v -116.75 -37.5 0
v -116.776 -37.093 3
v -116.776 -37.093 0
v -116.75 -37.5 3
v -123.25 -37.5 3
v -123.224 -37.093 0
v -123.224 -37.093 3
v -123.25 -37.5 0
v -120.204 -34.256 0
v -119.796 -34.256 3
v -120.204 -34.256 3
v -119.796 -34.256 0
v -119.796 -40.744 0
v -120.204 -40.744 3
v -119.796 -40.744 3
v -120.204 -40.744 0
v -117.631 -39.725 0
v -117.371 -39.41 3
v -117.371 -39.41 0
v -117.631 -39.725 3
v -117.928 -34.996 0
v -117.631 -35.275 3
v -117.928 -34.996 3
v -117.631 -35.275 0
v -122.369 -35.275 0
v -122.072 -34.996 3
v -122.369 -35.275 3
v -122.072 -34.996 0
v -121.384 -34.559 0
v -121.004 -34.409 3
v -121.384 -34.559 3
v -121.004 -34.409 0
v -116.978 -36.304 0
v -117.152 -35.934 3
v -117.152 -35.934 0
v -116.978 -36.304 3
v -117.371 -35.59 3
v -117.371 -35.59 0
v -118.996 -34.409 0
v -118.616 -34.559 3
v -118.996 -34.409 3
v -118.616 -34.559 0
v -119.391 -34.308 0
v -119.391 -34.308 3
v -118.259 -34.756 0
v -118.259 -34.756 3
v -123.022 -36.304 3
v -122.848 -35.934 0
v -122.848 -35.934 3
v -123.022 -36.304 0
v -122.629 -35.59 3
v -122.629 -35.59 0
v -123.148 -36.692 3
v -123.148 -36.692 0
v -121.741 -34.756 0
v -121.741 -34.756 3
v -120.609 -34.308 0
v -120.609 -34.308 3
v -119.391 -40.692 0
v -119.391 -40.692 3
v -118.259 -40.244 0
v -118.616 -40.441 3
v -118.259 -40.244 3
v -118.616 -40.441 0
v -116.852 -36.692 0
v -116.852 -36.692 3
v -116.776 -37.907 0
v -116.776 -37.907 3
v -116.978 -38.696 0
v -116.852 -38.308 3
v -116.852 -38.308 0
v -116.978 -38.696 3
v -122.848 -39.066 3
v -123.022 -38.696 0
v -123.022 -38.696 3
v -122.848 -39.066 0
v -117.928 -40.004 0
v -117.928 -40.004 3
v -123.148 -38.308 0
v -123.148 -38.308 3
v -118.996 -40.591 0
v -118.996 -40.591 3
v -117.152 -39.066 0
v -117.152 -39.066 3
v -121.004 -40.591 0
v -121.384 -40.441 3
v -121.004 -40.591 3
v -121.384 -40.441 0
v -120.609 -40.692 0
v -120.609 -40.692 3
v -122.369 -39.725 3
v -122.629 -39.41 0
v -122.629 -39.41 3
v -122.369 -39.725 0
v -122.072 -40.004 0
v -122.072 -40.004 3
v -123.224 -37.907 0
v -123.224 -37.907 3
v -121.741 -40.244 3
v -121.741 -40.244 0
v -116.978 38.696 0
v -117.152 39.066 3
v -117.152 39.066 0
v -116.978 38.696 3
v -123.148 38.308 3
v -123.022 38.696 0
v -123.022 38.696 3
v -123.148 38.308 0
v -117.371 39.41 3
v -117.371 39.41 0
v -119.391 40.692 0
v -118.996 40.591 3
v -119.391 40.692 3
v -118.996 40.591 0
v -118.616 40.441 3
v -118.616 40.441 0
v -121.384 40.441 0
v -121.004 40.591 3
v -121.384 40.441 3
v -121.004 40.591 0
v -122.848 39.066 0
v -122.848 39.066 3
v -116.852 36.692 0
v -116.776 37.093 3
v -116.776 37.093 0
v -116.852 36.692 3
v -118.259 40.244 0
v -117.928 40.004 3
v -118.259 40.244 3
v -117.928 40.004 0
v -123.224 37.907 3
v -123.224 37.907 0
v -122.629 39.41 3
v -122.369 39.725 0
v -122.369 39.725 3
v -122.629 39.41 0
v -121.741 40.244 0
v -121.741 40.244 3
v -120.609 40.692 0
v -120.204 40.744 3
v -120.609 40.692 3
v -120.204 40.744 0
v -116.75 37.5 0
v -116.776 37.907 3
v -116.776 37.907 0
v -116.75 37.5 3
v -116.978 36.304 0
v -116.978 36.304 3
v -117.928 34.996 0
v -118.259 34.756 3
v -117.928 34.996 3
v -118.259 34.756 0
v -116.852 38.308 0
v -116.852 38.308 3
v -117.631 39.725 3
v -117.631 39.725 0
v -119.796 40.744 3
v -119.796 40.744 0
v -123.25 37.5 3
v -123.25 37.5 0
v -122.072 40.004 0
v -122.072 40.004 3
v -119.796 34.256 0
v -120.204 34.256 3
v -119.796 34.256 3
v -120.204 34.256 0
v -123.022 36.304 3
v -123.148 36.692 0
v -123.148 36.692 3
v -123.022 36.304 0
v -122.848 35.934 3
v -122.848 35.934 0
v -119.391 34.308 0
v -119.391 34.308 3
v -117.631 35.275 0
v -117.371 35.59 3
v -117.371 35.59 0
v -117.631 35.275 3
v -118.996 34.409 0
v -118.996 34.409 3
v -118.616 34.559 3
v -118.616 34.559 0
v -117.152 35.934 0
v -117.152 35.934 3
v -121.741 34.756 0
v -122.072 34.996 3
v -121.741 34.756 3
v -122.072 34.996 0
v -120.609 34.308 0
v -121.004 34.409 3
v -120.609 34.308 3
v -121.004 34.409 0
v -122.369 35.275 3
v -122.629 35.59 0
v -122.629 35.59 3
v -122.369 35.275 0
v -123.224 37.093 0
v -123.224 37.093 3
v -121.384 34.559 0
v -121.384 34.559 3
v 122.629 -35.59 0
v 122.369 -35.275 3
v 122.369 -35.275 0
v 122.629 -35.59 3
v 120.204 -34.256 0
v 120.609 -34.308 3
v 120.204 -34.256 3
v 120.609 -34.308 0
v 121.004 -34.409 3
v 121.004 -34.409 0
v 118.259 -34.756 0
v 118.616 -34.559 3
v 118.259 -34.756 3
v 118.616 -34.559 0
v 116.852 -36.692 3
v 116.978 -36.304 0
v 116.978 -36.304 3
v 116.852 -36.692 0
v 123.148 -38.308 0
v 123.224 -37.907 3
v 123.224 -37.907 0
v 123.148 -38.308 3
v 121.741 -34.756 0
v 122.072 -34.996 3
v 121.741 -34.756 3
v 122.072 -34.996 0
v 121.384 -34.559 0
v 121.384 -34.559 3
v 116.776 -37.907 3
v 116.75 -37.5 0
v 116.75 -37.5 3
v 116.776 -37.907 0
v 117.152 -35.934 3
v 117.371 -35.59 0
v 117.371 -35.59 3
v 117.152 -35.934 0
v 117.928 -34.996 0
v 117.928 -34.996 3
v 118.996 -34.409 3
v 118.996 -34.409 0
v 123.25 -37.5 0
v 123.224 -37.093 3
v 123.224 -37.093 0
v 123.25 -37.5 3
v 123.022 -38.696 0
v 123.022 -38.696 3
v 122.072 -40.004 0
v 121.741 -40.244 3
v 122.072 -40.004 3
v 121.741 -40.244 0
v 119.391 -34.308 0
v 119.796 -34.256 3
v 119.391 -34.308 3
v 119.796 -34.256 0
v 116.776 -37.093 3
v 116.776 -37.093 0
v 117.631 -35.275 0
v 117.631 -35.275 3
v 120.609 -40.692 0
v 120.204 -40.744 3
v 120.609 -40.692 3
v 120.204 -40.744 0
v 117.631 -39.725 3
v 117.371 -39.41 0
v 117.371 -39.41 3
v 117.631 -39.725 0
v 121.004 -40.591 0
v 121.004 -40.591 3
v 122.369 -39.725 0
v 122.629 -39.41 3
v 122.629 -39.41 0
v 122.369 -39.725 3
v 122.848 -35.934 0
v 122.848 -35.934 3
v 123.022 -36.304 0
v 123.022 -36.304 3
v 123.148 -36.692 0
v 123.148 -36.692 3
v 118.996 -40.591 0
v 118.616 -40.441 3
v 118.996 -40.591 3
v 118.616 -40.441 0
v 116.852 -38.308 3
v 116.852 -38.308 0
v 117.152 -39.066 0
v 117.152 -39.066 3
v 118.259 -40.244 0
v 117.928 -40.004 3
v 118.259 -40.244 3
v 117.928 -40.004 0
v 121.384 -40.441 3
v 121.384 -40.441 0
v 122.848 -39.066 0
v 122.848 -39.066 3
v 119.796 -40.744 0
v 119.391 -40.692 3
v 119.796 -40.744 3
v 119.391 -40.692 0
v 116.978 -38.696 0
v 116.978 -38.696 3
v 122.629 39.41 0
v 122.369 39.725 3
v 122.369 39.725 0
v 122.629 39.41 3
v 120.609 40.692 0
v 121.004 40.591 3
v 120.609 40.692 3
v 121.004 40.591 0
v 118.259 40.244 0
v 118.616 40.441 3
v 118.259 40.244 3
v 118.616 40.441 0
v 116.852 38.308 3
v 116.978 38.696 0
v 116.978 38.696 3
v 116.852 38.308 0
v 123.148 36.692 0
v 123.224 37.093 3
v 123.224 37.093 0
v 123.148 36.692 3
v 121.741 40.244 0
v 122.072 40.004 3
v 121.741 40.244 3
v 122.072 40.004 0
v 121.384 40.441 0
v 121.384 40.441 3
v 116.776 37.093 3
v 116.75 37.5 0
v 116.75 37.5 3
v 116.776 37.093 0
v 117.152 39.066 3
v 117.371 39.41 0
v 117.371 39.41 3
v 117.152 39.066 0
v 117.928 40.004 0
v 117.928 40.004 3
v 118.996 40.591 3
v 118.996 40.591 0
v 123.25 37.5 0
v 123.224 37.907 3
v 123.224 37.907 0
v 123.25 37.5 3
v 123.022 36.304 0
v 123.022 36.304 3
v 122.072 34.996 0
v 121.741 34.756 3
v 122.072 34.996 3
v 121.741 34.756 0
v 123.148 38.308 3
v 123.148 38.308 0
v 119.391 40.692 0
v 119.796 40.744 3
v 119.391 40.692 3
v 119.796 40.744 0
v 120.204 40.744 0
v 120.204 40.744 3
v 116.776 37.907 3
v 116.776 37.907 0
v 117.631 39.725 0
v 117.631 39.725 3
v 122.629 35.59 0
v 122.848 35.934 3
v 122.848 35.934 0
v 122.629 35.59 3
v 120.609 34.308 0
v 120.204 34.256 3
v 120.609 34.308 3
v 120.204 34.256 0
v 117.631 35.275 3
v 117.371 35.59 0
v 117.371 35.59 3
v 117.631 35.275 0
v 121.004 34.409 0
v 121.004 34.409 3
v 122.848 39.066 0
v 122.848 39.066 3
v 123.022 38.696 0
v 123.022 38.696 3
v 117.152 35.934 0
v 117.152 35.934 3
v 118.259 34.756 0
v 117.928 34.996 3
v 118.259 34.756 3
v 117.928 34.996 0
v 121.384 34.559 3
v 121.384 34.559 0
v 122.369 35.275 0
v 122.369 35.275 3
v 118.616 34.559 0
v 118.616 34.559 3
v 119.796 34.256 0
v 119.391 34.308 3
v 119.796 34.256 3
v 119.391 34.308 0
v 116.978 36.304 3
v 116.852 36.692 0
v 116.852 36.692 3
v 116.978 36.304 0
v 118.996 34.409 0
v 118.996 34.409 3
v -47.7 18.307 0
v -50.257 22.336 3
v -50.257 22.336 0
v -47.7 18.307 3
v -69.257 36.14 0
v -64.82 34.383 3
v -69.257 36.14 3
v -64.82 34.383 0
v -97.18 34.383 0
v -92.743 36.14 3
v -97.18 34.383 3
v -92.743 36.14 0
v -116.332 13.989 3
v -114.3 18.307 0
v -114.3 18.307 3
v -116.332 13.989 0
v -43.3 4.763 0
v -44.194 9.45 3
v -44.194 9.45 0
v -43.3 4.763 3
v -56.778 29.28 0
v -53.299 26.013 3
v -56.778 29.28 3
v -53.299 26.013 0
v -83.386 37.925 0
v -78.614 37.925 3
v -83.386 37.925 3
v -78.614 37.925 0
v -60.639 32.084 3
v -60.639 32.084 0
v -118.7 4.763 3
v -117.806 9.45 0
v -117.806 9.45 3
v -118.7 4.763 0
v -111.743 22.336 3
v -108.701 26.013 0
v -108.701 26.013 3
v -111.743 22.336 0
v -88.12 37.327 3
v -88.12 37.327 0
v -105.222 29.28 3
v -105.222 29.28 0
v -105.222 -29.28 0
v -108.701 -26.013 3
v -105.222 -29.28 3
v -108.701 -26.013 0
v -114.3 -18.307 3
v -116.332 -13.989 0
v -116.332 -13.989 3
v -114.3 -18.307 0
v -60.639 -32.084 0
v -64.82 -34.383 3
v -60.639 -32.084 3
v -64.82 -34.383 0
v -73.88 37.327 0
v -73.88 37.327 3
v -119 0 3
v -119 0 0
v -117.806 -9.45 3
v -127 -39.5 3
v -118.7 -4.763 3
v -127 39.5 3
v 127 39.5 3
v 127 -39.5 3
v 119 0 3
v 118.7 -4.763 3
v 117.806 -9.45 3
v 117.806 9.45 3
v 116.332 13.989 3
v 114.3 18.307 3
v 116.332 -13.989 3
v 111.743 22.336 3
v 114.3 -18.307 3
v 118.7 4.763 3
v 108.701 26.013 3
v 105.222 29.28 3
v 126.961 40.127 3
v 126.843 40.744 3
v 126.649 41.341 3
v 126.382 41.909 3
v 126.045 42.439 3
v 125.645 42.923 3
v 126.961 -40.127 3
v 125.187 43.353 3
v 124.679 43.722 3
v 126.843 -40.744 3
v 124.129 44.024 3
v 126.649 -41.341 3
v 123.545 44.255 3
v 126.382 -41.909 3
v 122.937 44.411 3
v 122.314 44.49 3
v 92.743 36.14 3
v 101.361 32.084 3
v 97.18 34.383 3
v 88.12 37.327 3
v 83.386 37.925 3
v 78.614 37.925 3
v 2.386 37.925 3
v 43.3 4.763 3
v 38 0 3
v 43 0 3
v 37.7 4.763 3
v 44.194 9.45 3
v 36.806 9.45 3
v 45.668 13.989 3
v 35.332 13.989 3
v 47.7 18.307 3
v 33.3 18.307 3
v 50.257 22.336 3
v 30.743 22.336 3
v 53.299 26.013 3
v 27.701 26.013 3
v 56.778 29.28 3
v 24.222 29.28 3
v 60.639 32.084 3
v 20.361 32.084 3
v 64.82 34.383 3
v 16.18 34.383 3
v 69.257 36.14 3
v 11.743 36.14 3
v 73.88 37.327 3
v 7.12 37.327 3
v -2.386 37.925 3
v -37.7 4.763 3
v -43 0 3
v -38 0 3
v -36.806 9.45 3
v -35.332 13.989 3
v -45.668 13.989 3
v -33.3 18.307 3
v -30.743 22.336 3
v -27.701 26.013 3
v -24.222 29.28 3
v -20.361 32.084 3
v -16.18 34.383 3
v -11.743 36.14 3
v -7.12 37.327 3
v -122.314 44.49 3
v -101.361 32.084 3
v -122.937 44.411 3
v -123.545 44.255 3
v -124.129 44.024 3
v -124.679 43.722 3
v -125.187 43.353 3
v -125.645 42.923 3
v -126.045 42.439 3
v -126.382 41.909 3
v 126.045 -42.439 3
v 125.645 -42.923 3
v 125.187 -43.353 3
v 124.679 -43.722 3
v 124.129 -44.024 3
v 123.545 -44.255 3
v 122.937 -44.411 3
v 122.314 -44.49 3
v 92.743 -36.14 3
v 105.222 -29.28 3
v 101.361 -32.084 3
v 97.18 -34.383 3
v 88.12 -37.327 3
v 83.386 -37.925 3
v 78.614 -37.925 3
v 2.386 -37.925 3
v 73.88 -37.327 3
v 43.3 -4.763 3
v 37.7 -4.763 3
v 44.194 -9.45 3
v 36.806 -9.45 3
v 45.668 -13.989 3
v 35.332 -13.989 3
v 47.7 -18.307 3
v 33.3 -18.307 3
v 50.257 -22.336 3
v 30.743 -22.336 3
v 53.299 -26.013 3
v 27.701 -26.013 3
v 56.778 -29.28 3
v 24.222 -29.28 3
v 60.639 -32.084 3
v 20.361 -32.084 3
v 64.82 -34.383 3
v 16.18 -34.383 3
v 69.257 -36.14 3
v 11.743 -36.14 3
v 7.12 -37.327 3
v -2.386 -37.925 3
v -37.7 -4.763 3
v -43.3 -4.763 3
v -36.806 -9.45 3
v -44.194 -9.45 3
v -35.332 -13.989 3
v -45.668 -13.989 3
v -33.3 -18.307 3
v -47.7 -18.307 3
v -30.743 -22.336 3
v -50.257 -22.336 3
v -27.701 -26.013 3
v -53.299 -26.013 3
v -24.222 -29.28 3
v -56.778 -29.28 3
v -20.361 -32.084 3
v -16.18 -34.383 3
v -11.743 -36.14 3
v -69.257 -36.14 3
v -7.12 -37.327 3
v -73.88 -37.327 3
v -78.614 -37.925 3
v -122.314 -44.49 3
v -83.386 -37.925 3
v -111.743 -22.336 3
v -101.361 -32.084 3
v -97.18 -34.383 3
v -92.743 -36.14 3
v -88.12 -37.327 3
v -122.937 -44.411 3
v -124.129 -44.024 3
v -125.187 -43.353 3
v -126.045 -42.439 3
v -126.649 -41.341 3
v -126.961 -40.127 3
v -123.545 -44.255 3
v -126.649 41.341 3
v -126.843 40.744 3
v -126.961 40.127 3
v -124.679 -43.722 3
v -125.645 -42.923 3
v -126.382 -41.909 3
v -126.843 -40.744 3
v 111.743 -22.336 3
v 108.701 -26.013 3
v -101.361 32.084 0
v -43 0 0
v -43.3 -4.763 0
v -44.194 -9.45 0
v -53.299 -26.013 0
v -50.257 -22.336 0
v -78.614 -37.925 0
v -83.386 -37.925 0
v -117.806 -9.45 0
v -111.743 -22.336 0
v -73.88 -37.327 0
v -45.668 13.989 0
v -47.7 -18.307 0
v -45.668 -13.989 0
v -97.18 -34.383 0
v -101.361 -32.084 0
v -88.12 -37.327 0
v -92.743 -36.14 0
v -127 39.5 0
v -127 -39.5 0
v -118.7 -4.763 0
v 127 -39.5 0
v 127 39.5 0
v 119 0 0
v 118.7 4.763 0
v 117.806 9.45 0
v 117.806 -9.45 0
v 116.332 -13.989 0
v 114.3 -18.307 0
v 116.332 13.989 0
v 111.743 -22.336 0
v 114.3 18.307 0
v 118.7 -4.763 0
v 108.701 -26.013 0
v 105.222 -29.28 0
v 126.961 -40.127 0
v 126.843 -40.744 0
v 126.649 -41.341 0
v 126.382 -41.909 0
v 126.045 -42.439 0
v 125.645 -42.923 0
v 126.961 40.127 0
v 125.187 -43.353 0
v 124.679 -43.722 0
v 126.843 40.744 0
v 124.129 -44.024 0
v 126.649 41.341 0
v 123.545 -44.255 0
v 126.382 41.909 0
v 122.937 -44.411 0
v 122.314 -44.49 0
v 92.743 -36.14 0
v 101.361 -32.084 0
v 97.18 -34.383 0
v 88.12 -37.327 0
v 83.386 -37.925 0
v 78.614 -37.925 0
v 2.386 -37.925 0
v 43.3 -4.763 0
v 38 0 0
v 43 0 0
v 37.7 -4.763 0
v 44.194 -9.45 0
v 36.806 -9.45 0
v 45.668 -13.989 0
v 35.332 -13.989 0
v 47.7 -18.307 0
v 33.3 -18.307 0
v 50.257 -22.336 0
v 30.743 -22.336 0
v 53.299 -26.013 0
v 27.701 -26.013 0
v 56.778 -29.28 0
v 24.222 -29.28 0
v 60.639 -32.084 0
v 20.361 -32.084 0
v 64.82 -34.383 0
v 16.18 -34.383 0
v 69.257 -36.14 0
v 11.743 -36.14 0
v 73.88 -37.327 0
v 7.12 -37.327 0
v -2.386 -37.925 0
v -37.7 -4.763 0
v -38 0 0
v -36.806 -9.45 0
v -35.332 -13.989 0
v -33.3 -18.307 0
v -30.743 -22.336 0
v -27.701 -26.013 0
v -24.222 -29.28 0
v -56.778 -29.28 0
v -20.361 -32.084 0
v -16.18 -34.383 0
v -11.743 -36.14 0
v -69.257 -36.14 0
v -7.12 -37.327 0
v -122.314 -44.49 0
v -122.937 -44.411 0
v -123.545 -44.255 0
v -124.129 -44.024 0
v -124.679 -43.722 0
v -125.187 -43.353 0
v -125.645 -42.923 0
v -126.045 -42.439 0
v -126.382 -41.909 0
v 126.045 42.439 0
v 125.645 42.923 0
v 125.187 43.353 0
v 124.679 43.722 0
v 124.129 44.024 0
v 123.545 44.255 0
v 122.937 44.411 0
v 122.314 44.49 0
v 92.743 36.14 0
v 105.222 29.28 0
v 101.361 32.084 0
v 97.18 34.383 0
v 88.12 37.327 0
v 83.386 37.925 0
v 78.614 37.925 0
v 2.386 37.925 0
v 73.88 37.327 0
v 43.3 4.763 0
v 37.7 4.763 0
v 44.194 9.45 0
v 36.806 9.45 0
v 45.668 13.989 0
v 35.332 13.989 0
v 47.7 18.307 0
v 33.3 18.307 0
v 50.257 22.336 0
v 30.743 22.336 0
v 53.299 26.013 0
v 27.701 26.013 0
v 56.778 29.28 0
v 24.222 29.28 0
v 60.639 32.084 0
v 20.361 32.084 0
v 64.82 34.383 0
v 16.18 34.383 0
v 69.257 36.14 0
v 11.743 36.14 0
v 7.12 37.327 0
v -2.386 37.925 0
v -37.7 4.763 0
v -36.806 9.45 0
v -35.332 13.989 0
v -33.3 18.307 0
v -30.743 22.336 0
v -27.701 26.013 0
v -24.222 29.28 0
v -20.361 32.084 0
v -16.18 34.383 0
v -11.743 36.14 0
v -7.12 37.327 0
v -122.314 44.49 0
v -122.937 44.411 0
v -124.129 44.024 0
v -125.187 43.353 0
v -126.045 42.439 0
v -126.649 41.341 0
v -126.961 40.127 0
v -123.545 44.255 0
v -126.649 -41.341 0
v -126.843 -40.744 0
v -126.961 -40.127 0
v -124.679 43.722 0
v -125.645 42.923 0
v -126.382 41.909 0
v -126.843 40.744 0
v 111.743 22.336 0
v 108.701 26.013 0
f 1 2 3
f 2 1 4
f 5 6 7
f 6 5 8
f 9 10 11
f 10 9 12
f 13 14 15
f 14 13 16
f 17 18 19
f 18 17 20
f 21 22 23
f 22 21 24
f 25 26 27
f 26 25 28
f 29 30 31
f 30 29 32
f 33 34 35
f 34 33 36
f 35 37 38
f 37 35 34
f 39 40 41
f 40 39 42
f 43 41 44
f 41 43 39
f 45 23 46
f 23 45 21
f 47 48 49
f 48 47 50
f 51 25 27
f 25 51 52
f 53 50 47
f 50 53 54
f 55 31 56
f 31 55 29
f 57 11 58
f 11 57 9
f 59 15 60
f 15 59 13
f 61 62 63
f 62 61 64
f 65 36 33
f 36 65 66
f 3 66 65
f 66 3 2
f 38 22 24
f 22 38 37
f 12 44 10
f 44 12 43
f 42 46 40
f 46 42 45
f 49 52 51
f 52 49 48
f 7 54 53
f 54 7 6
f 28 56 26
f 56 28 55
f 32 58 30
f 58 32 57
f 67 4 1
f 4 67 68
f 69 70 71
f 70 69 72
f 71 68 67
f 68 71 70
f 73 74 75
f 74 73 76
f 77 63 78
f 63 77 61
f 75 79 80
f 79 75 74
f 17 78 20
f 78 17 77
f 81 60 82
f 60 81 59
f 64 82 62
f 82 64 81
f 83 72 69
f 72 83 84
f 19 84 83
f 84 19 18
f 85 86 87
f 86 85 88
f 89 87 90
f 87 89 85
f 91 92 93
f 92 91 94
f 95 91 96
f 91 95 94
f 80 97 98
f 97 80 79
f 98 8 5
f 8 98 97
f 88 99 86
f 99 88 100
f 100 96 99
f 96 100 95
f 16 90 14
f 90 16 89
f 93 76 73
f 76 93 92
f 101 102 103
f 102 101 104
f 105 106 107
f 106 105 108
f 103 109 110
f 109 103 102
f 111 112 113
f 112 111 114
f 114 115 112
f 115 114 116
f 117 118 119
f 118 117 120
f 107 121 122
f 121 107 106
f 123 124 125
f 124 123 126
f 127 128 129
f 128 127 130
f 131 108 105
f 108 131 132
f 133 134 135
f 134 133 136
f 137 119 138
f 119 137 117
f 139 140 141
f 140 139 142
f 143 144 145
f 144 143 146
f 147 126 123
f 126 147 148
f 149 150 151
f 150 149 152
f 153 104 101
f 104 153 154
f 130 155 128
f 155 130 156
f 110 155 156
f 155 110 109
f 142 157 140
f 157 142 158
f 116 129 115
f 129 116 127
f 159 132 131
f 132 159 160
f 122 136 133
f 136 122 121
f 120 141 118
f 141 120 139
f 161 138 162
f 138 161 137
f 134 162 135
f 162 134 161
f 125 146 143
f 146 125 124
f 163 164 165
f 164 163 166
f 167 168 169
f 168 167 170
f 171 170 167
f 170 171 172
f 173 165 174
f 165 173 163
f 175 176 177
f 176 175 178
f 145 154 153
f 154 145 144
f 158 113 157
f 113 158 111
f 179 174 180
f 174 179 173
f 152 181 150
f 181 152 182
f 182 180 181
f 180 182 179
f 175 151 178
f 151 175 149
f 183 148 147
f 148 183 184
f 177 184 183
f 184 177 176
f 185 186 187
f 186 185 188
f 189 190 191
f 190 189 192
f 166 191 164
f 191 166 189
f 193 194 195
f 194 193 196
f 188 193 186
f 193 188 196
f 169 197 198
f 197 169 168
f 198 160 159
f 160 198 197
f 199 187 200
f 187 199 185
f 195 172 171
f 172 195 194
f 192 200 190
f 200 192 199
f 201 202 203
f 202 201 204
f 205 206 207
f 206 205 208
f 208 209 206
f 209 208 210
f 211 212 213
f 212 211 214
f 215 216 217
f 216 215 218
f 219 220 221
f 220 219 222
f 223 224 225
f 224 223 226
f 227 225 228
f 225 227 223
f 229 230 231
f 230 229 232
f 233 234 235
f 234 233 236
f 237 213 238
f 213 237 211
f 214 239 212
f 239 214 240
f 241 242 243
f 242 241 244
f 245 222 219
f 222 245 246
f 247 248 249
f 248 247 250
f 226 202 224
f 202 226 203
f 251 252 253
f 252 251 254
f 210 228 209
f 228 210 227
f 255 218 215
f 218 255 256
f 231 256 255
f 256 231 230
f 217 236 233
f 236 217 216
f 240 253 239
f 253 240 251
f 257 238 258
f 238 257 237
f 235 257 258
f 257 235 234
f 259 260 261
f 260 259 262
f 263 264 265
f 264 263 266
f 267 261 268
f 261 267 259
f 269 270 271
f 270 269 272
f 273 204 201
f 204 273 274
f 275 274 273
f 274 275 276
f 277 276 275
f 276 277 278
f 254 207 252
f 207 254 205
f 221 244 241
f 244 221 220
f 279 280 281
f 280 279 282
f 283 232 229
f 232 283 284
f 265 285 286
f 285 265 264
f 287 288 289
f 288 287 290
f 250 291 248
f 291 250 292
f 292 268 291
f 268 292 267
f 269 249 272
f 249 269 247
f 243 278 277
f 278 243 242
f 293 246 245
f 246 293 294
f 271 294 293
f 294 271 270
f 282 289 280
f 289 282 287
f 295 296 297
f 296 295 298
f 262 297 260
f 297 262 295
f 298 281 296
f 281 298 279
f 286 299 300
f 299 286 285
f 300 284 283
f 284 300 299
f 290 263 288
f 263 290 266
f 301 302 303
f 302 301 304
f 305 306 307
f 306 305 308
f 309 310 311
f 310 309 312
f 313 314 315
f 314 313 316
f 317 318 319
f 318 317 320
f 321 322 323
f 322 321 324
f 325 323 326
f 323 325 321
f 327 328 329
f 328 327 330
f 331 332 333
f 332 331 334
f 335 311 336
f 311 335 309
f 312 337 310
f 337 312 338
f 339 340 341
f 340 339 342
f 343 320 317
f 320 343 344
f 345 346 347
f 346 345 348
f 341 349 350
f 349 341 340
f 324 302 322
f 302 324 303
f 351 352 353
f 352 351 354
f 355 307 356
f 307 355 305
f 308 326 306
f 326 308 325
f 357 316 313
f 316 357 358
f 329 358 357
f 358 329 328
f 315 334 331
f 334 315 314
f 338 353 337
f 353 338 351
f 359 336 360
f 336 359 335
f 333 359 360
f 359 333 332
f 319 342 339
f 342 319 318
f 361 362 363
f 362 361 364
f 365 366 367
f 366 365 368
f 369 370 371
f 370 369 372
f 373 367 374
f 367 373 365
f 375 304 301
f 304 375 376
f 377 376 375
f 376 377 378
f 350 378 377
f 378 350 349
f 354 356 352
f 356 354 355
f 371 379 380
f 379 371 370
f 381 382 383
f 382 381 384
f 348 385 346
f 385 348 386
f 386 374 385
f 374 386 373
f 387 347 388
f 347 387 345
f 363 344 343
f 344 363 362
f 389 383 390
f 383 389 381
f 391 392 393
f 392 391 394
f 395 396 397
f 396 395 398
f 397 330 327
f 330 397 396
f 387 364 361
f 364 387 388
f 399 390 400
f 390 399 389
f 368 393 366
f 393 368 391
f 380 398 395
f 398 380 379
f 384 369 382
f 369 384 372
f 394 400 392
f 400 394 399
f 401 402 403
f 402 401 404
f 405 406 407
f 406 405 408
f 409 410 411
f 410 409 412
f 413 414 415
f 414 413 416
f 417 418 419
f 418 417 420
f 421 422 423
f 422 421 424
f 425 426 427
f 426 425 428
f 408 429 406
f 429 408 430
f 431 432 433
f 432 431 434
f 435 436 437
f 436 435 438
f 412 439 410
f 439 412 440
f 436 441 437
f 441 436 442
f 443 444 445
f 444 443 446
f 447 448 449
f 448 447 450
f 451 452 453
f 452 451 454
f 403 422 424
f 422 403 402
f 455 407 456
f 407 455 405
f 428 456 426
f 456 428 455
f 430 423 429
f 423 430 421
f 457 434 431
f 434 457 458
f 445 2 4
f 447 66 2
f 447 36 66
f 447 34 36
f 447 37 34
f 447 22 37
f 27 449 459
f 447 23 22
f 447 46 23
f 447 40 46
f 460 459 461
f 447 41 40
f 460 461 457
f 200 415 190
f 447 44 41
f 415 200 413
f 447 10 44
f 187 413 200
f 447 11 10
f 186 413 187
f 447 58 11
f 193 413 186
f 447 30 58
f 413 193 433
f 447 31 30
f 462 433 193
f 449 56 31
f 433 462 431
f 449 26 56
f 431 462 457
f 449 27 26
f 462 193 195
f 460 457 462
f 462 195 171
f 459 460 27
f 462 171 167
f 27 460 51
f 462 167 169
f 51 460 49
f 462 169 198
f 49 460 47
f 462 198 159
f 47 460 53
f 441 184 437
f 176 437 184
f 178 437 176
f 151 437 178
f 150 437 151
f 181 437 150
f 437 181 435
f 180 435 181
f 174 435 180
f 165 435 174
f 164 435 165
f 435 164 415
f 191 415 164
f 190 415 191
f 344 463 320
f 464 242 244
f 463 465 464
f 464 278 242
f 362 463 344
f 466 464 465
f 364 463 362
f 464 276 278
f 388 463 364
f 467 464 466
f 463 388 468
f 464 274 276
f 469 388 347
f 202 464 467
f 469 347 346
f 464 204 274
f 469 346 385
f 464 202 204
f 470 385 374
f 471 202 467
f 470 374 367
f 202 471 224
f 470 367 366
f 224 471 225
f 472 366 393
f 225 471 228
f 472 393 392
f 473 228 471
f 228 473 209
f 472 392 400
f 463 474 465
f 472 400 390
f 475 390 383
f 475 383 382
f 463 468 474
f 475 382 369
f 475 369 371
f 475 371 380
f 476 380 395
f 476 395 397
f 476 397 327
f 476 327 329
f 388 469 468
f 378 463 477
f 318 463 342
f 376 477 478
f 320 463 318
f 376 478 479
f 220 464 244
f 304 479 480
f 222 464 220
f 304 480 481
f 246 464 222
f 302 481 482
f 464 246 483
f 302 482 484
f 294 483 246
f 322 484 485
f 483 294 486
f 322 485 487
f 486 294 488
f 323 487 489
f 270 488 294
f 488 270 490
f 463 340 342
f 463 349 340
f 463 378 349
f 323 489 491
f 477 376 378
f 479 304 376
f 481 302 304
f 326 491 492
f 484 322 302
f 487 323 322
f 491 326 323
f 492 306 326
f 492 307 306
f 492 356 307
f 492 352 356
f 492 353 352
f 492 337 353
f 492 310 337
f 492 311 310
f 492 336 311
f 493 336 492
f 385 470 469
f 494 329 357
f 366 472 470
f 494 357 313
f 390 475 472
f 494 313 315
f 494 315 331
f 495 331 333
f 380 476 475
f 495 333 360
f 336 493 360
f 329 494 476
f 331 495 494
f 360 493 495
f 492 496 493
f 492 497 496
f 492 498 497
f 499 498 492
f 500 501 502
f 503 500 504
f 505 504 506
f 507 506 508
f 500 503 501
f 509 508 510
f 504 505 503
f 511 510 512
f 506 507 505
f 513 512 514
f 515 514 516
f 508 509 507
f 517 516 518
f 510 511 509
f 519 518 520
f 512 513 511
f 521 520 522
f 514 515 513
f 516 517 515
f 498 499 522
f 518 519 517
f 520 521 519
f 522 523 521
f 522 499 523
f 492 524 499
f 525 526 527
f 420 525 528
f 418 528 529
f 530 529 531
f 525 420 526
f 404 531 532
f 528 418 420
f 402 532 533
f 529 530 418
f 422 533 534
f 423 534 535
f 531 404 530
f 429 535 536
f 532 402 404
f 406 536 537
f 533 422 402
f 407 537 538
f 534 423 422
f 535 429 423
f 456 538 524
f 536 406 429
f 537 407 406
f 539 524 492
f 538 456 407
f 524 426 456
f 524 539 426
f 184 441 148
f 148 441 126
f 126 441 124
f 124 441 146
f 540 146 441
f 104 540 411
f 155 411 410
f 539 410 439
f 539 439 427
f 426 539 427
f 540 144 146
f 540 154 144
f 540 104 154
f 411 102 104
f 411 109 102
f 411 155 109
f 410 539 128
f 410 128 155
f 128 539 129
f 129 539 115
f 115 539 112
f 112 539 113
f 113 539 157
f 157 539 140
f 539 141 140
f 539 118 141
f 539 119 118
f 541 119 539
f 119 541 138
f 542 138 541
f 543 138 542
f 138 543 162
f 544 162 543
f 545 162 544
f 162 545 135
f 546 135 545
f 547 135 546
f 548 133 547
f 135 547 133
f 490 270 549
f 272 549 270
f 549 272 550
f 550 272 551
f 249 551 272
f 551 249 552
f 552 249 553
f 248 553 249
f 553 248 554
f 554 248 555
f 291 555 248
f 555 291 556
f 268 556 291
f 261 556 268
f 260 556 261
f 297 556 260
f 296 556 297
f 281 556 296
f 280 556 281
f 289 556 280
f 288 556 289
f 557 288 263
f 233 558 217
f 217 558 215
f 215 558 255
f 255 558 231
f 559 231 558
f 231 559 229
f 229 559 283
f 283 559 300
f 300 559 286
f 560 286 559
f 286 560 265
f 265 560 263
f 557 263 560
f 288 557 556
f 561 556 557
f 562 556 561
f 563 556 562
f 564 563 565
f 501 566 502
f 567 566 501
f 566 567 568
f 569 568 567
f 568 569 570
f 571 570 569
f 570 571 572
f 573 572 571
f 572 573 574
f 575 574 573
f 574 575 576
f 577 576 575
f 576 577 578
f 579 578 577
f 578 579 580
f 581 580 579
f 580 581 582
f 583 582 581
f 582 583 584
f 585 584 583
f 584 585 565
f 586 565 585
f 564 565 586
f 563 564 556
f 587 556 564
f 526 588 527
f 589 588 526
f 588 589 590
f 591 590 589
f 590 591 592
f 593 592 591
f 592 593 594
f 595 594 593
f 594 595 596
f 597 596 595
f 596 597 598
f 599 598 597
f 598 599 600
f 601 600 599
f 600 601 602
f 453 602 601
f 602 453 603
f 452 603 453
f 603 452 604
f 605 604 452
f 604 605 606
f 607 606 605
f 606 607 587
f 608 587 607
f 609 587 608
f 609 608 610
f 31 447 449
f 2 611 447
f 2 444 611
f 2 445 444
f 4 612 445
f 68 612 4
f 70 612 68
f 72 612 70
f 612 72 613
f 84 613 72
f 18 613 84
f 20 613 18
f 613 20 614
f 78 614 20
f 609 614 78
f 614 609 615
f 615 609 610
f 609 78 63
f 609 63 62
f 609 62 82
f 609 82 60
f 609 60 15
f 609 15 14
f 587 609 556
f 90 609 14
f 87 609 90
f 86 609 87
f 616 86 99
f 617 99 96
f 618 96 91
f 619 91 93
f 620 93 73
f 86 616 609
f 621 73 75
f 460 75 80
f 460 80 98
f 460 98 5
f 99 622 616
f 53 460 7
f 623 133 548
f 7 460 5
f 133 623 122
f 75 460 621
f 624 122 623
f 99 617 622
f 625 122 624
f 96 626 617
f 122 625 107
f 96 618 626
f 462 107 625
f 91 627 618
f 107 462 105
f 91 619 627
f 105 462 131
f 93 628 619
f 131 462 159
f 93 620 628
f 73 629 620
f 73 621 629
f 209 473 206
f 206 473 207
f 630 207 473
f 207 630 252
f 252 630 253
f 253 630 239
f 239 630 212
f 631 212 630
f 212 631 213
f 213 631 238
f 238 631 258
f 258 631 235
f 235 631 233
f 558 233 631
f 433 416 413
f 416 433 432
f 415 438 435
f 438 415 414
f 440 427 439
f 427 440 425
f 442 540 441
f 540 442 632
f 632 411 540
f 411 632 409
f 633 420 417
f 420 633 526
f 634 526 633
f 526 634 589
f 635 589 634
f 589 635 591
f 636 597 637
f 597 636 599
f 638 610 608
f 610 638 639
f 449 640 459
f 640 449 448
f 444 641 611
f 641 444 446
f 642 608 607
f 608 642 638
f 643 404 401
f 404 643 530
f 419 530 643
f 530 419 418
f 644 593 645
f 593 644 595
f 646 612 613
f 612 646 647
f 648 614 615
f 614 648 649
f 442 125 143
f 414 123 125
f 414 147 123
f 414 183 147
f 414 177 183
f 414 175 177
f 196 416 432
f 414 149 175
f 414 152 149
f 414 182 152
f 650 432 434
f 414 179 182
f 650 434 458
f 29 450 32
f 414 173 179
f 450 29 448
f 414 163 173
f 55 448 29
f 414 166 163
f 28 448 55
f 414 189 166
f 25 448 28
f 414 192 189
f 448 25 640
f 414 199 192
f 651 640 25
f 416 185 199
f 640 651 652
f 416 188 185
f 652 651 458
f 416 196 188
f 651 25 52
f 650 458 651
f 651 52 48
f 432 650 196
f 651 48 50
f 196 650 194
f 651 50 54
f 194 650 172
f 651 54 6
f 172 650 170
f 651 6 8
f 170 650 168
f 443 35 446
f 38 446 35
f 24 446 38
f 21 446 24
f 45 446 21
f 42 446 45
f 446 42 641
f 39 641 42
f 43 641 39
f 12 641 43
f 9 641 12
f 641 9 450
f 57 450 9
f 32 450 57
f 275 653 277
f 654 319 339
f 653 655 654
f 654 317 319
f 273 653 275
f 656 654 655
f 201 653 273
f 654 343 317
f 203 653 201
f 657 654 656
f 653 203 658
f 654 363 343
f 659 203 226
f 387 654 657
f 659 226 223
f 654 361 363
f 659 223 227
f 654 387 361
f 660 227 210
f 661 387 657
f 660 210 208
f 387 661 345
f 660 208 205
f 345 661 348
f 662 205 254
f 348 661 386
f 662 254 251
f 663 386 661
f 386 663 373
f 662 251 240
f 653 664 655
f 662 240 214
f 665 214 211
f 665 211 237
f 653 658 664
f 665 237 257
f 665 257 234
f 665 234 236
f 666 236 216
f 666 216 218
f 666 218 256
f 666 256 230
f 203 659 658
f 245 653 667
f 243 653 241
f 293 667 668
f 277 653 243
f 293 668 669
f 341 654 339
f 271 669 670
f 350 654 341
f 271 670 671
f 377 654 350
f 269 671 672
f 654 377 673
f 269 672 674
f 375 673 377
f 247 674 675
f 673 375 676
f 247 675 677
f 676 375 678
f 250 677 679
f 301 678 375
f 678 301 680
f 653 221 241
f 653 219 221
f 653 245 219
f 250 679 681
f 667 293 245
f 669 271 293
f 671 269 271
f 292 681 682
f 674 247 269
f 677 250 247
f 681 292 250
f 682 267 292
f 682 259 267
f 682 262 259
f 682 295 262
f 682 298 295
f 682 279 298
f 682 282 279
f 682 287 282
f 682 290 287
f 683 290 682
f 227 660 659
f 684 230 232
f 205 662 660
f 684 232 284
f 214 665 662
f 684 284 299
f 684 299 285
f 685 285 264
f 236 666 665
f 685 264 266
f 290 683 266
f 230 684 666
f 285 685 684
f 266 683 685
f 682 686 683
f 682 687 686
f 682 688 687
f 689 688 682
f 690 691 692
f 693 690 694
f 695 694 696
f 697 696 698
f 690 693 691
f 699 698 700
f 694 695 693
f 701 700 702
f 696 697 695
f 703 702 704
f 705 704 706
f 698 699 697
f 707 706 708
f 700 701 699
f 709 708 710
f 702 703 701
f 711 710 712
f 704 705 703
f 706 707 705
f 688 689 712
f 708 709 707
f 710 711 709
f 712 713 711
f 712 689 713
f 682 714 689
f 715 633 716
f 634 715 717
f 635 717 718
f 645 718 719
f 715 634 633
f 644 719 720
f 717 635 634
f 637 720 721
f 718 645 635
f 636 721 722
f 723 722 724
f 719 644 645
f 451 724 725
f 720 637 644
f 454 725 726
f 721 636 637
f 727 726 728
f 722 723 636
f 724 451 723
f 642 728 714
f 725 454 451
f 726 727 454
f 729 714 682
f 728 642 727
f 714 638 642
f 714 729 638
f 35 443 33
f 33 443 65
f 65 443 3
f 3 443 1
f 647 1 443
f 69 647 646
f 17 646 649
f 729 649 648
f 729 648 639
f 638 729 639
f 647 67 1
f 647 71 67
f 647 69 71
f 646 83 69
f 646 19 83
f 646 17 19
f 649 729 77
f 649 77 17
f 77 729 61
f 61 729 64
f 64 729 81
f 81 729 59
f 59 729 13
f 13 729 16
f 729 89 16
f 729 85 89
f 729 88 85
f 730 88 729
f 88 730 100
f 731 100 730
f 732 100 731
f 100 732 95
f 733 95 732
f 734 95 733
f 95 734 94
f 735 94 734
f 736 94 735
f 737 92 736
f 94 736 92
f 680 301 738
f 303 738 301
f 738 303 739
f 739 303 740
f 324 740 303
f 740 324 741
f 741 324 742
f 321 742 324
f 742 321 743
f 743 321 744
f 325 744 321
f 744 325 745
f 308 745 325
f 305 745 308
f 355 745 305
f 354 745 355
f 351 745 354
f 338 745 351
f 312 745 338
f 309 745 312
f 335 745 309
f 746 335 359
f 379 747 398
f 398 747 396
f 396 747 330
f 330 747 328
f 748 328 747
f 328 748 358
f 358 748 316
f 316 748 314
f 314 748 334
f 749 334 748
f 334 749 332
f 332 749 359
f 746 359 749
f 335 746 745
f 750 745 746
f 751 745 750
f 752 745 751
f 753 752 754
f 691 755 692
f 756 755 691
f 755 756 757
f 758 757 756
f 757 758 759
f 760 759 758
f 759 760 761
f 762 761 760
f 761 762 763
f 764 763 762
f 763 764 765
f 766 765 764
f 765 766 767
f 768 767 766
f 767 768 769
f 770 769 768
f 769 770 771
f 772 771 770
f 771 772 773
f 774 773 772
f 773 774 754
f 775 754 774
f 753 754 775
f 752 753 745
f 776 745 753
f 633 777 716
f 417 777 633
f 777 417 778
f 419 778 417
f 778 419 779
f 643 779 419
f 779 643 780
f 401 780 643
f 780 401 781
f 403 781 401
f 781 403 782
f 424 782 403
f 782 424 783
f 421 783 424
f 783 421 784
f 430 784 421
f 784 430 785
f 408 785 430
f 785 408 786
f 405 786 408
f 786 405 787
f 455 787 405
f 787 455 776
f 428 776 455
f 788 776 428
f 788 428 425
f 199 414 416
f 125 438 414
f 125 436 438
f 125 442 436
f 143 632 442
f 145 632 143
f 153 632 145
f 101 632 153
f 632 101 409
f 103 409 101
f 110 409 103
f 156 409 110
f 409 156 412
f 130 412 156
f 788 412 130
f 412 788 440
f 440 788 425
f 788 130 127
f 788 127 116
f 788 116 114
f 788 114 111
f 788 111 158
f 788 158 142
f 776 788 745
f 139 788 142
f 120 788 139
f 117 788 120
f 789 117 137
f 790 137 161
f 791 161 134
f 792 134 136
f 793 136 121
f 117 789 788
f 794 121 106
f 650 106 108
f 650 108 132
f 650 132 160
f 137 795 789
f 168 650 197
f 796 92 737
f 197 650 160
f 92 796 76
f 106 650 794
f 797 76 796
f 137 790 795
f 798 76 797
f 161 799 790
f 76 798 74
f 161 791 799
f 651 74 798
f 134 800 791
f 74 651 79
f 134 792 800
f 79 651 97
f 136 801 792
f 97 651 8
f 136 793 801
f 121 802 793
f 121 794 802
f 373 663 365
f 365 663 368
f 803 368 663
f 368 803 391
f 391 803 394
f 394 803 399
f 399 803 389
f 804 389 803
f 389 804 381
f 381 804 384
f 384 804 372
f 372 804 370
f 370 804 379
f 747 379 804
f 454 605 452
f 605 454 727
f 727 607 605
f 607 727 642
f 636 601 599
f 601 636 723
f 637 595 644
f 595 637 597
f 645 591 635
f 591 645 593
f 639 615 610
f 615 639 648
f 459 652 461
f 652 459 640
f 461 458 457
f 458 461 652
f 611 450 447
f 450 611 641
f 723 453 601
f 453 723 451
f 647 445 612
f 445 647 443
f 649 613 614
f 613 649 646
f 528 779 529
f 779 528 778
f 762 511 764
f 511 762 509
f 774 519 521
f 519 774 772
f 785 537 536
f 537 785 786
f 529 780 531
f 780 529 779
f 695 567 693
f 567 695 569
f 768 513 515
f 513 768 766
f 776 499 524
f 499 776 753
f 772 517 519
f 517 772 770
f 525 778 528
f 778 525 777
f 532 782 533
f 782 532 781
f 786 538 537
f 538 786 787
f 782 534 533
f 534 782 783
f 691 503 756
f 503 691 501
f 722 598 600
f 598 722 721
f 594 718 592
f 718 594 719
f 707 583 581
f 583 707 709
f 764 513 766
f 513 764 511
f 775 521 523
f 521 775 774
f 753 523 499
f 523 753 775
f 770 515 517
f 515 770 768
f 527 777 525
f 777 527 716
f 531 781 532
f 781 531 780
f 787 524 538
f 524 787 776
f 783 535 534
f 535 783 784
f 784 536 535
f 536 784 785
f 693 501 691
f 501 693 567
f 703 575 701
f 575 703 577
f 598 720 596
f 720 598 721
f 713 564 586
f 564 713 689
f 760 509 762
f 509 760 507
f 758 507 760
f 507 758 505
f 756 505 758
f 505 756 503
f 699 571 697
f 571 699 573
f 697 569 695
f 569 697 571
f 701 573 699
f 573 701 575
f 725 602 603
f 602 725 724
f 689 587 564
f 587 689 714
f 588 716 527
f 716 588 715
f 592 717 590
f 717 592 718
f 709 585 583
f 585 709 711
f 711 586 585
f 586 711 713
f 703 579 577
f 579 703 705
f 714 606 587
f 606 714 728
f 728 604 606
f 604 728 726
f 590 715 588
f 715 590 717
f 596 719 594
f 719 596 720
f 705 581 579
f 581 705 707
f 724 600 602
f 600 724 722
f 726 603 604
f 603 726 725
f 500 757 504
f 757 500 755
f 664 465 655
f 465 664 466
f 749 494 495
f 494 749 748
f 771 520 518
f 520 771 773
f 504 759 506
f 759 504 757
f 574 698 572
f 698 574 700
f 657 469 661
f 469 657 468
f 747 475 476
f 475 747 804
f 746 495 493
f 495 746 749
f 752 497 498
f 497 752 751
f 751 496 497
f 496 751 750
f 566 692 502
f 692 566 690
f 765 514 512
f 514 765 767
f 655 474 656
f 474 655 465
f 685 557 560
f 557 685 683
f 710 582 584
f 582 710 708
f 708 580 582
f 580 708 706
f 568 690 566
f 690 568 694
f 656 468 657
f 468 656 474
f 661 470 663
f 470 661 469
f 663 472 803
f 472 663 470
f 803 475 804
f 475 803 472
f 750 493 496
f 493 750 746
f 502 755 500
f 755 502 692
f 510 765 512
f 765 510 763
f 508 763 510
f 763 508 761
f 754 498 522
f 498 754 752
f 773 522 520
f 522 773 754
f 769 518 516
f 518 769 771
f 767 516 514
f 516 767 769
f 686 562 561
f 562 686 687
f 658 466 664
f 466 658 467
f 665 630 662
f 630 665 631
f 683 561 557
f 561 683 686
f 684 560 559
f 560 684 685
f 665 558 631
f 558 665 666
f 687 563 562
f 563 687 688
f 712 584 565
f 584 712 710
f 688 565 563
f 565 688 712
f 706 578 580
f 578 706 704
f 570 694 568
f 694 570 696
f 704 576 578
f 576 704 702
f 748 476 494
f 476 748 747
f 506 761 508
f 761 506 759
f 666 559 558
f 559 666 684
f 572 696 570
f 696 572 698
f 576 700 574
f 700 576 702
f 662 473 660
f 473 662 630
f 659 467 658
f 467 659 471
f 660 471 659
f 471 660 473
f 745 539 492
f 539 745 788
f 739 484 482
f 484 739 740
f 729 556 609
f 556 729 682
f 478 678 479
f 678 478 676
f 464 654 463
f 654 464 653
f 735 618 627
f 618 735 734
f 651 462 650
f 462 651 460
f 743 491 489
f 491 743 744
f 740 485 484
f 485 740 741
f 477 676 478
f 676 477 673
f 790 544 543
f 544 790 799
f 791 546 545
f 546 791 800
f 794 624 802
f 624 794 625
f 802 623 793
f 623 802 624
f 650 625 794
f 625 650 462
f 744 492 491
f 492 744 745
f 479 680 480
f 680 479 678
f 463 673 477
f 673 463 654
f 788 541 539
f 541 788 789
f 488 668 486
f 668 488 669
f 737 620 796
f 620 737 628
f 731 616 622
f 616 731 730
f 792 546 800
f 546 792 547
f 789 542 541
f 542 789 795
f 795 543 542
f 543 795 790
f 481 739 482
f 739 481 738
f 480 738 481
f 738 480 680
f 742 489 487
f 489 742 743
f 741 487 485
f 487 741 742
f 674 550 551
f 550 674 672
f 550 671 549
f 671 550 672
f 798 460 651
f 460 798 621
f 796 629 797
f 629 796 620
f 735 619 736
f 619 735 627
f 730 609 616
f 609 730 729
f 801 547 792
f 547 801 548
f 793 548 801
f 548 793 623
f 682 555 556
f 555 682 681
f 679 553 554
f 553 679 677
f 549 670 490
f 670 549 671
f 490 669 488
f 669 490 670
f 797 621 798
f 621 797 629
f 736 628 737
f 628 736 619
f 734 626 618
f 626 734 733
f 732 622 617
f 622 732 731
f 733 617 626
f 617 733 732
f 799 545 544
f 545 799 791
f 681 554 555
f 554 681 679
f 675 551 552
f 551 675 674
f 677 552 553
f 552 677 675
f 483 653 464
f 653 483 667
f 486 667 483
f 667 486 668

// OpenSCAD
$fn = 50;


difference() {
	union() {
		hull() {
			translate(v = [-122.0000000000, 39.5000000000, 0]) {
				cylinder(h = 3, r = 5);
			}
			translate(v = [122.0000000000, 39.5000000000, 0]) {
				cylinder(h = 3, r = 5);
			}
			translate(v = [-122.0000000000, -39.5000000000, 0]) {
				cylinder(h = 3, r = 5);
			}
			translate(v = [122.0000000000, -39.5000000000, 0]) {
				cylinder(h = 3, r = 5);
			}
		}
	}
	union() {
		#translate(v = [-120.0000000000, -37.5000000000, -100.0000000000]) {
			cylinder(h = 200, r = 3.2500000000);
		}
		#translate(v = [-120.0000000000, 37.5000000000, -100.0000000000]) {
			cylinder(h = 200, r = 3.2500000000);
		}
		#translate(v = [120.0000000000, -37.5000000000, -100.0000000000]) {
			cylinder(h = 200, r = 3.2500000000);
		}
		#translate(v = [120.0000000000, 37.5000000000, -100.0000000000]) {
			cylinder(h = 200, r = 3.2500000000);
		}
		#translate(v = [-81.0000000000, 0, 0]) {
			cylinder(h = 3, r = 38.0000000000);
		}
		#cylinder(h = 3, r = 38.0000000000);
		#translate(v = [81.0000000000, 0, 0]) {
			cylinder(h = 3, r = 38.0000000000);
		}
	}
}
